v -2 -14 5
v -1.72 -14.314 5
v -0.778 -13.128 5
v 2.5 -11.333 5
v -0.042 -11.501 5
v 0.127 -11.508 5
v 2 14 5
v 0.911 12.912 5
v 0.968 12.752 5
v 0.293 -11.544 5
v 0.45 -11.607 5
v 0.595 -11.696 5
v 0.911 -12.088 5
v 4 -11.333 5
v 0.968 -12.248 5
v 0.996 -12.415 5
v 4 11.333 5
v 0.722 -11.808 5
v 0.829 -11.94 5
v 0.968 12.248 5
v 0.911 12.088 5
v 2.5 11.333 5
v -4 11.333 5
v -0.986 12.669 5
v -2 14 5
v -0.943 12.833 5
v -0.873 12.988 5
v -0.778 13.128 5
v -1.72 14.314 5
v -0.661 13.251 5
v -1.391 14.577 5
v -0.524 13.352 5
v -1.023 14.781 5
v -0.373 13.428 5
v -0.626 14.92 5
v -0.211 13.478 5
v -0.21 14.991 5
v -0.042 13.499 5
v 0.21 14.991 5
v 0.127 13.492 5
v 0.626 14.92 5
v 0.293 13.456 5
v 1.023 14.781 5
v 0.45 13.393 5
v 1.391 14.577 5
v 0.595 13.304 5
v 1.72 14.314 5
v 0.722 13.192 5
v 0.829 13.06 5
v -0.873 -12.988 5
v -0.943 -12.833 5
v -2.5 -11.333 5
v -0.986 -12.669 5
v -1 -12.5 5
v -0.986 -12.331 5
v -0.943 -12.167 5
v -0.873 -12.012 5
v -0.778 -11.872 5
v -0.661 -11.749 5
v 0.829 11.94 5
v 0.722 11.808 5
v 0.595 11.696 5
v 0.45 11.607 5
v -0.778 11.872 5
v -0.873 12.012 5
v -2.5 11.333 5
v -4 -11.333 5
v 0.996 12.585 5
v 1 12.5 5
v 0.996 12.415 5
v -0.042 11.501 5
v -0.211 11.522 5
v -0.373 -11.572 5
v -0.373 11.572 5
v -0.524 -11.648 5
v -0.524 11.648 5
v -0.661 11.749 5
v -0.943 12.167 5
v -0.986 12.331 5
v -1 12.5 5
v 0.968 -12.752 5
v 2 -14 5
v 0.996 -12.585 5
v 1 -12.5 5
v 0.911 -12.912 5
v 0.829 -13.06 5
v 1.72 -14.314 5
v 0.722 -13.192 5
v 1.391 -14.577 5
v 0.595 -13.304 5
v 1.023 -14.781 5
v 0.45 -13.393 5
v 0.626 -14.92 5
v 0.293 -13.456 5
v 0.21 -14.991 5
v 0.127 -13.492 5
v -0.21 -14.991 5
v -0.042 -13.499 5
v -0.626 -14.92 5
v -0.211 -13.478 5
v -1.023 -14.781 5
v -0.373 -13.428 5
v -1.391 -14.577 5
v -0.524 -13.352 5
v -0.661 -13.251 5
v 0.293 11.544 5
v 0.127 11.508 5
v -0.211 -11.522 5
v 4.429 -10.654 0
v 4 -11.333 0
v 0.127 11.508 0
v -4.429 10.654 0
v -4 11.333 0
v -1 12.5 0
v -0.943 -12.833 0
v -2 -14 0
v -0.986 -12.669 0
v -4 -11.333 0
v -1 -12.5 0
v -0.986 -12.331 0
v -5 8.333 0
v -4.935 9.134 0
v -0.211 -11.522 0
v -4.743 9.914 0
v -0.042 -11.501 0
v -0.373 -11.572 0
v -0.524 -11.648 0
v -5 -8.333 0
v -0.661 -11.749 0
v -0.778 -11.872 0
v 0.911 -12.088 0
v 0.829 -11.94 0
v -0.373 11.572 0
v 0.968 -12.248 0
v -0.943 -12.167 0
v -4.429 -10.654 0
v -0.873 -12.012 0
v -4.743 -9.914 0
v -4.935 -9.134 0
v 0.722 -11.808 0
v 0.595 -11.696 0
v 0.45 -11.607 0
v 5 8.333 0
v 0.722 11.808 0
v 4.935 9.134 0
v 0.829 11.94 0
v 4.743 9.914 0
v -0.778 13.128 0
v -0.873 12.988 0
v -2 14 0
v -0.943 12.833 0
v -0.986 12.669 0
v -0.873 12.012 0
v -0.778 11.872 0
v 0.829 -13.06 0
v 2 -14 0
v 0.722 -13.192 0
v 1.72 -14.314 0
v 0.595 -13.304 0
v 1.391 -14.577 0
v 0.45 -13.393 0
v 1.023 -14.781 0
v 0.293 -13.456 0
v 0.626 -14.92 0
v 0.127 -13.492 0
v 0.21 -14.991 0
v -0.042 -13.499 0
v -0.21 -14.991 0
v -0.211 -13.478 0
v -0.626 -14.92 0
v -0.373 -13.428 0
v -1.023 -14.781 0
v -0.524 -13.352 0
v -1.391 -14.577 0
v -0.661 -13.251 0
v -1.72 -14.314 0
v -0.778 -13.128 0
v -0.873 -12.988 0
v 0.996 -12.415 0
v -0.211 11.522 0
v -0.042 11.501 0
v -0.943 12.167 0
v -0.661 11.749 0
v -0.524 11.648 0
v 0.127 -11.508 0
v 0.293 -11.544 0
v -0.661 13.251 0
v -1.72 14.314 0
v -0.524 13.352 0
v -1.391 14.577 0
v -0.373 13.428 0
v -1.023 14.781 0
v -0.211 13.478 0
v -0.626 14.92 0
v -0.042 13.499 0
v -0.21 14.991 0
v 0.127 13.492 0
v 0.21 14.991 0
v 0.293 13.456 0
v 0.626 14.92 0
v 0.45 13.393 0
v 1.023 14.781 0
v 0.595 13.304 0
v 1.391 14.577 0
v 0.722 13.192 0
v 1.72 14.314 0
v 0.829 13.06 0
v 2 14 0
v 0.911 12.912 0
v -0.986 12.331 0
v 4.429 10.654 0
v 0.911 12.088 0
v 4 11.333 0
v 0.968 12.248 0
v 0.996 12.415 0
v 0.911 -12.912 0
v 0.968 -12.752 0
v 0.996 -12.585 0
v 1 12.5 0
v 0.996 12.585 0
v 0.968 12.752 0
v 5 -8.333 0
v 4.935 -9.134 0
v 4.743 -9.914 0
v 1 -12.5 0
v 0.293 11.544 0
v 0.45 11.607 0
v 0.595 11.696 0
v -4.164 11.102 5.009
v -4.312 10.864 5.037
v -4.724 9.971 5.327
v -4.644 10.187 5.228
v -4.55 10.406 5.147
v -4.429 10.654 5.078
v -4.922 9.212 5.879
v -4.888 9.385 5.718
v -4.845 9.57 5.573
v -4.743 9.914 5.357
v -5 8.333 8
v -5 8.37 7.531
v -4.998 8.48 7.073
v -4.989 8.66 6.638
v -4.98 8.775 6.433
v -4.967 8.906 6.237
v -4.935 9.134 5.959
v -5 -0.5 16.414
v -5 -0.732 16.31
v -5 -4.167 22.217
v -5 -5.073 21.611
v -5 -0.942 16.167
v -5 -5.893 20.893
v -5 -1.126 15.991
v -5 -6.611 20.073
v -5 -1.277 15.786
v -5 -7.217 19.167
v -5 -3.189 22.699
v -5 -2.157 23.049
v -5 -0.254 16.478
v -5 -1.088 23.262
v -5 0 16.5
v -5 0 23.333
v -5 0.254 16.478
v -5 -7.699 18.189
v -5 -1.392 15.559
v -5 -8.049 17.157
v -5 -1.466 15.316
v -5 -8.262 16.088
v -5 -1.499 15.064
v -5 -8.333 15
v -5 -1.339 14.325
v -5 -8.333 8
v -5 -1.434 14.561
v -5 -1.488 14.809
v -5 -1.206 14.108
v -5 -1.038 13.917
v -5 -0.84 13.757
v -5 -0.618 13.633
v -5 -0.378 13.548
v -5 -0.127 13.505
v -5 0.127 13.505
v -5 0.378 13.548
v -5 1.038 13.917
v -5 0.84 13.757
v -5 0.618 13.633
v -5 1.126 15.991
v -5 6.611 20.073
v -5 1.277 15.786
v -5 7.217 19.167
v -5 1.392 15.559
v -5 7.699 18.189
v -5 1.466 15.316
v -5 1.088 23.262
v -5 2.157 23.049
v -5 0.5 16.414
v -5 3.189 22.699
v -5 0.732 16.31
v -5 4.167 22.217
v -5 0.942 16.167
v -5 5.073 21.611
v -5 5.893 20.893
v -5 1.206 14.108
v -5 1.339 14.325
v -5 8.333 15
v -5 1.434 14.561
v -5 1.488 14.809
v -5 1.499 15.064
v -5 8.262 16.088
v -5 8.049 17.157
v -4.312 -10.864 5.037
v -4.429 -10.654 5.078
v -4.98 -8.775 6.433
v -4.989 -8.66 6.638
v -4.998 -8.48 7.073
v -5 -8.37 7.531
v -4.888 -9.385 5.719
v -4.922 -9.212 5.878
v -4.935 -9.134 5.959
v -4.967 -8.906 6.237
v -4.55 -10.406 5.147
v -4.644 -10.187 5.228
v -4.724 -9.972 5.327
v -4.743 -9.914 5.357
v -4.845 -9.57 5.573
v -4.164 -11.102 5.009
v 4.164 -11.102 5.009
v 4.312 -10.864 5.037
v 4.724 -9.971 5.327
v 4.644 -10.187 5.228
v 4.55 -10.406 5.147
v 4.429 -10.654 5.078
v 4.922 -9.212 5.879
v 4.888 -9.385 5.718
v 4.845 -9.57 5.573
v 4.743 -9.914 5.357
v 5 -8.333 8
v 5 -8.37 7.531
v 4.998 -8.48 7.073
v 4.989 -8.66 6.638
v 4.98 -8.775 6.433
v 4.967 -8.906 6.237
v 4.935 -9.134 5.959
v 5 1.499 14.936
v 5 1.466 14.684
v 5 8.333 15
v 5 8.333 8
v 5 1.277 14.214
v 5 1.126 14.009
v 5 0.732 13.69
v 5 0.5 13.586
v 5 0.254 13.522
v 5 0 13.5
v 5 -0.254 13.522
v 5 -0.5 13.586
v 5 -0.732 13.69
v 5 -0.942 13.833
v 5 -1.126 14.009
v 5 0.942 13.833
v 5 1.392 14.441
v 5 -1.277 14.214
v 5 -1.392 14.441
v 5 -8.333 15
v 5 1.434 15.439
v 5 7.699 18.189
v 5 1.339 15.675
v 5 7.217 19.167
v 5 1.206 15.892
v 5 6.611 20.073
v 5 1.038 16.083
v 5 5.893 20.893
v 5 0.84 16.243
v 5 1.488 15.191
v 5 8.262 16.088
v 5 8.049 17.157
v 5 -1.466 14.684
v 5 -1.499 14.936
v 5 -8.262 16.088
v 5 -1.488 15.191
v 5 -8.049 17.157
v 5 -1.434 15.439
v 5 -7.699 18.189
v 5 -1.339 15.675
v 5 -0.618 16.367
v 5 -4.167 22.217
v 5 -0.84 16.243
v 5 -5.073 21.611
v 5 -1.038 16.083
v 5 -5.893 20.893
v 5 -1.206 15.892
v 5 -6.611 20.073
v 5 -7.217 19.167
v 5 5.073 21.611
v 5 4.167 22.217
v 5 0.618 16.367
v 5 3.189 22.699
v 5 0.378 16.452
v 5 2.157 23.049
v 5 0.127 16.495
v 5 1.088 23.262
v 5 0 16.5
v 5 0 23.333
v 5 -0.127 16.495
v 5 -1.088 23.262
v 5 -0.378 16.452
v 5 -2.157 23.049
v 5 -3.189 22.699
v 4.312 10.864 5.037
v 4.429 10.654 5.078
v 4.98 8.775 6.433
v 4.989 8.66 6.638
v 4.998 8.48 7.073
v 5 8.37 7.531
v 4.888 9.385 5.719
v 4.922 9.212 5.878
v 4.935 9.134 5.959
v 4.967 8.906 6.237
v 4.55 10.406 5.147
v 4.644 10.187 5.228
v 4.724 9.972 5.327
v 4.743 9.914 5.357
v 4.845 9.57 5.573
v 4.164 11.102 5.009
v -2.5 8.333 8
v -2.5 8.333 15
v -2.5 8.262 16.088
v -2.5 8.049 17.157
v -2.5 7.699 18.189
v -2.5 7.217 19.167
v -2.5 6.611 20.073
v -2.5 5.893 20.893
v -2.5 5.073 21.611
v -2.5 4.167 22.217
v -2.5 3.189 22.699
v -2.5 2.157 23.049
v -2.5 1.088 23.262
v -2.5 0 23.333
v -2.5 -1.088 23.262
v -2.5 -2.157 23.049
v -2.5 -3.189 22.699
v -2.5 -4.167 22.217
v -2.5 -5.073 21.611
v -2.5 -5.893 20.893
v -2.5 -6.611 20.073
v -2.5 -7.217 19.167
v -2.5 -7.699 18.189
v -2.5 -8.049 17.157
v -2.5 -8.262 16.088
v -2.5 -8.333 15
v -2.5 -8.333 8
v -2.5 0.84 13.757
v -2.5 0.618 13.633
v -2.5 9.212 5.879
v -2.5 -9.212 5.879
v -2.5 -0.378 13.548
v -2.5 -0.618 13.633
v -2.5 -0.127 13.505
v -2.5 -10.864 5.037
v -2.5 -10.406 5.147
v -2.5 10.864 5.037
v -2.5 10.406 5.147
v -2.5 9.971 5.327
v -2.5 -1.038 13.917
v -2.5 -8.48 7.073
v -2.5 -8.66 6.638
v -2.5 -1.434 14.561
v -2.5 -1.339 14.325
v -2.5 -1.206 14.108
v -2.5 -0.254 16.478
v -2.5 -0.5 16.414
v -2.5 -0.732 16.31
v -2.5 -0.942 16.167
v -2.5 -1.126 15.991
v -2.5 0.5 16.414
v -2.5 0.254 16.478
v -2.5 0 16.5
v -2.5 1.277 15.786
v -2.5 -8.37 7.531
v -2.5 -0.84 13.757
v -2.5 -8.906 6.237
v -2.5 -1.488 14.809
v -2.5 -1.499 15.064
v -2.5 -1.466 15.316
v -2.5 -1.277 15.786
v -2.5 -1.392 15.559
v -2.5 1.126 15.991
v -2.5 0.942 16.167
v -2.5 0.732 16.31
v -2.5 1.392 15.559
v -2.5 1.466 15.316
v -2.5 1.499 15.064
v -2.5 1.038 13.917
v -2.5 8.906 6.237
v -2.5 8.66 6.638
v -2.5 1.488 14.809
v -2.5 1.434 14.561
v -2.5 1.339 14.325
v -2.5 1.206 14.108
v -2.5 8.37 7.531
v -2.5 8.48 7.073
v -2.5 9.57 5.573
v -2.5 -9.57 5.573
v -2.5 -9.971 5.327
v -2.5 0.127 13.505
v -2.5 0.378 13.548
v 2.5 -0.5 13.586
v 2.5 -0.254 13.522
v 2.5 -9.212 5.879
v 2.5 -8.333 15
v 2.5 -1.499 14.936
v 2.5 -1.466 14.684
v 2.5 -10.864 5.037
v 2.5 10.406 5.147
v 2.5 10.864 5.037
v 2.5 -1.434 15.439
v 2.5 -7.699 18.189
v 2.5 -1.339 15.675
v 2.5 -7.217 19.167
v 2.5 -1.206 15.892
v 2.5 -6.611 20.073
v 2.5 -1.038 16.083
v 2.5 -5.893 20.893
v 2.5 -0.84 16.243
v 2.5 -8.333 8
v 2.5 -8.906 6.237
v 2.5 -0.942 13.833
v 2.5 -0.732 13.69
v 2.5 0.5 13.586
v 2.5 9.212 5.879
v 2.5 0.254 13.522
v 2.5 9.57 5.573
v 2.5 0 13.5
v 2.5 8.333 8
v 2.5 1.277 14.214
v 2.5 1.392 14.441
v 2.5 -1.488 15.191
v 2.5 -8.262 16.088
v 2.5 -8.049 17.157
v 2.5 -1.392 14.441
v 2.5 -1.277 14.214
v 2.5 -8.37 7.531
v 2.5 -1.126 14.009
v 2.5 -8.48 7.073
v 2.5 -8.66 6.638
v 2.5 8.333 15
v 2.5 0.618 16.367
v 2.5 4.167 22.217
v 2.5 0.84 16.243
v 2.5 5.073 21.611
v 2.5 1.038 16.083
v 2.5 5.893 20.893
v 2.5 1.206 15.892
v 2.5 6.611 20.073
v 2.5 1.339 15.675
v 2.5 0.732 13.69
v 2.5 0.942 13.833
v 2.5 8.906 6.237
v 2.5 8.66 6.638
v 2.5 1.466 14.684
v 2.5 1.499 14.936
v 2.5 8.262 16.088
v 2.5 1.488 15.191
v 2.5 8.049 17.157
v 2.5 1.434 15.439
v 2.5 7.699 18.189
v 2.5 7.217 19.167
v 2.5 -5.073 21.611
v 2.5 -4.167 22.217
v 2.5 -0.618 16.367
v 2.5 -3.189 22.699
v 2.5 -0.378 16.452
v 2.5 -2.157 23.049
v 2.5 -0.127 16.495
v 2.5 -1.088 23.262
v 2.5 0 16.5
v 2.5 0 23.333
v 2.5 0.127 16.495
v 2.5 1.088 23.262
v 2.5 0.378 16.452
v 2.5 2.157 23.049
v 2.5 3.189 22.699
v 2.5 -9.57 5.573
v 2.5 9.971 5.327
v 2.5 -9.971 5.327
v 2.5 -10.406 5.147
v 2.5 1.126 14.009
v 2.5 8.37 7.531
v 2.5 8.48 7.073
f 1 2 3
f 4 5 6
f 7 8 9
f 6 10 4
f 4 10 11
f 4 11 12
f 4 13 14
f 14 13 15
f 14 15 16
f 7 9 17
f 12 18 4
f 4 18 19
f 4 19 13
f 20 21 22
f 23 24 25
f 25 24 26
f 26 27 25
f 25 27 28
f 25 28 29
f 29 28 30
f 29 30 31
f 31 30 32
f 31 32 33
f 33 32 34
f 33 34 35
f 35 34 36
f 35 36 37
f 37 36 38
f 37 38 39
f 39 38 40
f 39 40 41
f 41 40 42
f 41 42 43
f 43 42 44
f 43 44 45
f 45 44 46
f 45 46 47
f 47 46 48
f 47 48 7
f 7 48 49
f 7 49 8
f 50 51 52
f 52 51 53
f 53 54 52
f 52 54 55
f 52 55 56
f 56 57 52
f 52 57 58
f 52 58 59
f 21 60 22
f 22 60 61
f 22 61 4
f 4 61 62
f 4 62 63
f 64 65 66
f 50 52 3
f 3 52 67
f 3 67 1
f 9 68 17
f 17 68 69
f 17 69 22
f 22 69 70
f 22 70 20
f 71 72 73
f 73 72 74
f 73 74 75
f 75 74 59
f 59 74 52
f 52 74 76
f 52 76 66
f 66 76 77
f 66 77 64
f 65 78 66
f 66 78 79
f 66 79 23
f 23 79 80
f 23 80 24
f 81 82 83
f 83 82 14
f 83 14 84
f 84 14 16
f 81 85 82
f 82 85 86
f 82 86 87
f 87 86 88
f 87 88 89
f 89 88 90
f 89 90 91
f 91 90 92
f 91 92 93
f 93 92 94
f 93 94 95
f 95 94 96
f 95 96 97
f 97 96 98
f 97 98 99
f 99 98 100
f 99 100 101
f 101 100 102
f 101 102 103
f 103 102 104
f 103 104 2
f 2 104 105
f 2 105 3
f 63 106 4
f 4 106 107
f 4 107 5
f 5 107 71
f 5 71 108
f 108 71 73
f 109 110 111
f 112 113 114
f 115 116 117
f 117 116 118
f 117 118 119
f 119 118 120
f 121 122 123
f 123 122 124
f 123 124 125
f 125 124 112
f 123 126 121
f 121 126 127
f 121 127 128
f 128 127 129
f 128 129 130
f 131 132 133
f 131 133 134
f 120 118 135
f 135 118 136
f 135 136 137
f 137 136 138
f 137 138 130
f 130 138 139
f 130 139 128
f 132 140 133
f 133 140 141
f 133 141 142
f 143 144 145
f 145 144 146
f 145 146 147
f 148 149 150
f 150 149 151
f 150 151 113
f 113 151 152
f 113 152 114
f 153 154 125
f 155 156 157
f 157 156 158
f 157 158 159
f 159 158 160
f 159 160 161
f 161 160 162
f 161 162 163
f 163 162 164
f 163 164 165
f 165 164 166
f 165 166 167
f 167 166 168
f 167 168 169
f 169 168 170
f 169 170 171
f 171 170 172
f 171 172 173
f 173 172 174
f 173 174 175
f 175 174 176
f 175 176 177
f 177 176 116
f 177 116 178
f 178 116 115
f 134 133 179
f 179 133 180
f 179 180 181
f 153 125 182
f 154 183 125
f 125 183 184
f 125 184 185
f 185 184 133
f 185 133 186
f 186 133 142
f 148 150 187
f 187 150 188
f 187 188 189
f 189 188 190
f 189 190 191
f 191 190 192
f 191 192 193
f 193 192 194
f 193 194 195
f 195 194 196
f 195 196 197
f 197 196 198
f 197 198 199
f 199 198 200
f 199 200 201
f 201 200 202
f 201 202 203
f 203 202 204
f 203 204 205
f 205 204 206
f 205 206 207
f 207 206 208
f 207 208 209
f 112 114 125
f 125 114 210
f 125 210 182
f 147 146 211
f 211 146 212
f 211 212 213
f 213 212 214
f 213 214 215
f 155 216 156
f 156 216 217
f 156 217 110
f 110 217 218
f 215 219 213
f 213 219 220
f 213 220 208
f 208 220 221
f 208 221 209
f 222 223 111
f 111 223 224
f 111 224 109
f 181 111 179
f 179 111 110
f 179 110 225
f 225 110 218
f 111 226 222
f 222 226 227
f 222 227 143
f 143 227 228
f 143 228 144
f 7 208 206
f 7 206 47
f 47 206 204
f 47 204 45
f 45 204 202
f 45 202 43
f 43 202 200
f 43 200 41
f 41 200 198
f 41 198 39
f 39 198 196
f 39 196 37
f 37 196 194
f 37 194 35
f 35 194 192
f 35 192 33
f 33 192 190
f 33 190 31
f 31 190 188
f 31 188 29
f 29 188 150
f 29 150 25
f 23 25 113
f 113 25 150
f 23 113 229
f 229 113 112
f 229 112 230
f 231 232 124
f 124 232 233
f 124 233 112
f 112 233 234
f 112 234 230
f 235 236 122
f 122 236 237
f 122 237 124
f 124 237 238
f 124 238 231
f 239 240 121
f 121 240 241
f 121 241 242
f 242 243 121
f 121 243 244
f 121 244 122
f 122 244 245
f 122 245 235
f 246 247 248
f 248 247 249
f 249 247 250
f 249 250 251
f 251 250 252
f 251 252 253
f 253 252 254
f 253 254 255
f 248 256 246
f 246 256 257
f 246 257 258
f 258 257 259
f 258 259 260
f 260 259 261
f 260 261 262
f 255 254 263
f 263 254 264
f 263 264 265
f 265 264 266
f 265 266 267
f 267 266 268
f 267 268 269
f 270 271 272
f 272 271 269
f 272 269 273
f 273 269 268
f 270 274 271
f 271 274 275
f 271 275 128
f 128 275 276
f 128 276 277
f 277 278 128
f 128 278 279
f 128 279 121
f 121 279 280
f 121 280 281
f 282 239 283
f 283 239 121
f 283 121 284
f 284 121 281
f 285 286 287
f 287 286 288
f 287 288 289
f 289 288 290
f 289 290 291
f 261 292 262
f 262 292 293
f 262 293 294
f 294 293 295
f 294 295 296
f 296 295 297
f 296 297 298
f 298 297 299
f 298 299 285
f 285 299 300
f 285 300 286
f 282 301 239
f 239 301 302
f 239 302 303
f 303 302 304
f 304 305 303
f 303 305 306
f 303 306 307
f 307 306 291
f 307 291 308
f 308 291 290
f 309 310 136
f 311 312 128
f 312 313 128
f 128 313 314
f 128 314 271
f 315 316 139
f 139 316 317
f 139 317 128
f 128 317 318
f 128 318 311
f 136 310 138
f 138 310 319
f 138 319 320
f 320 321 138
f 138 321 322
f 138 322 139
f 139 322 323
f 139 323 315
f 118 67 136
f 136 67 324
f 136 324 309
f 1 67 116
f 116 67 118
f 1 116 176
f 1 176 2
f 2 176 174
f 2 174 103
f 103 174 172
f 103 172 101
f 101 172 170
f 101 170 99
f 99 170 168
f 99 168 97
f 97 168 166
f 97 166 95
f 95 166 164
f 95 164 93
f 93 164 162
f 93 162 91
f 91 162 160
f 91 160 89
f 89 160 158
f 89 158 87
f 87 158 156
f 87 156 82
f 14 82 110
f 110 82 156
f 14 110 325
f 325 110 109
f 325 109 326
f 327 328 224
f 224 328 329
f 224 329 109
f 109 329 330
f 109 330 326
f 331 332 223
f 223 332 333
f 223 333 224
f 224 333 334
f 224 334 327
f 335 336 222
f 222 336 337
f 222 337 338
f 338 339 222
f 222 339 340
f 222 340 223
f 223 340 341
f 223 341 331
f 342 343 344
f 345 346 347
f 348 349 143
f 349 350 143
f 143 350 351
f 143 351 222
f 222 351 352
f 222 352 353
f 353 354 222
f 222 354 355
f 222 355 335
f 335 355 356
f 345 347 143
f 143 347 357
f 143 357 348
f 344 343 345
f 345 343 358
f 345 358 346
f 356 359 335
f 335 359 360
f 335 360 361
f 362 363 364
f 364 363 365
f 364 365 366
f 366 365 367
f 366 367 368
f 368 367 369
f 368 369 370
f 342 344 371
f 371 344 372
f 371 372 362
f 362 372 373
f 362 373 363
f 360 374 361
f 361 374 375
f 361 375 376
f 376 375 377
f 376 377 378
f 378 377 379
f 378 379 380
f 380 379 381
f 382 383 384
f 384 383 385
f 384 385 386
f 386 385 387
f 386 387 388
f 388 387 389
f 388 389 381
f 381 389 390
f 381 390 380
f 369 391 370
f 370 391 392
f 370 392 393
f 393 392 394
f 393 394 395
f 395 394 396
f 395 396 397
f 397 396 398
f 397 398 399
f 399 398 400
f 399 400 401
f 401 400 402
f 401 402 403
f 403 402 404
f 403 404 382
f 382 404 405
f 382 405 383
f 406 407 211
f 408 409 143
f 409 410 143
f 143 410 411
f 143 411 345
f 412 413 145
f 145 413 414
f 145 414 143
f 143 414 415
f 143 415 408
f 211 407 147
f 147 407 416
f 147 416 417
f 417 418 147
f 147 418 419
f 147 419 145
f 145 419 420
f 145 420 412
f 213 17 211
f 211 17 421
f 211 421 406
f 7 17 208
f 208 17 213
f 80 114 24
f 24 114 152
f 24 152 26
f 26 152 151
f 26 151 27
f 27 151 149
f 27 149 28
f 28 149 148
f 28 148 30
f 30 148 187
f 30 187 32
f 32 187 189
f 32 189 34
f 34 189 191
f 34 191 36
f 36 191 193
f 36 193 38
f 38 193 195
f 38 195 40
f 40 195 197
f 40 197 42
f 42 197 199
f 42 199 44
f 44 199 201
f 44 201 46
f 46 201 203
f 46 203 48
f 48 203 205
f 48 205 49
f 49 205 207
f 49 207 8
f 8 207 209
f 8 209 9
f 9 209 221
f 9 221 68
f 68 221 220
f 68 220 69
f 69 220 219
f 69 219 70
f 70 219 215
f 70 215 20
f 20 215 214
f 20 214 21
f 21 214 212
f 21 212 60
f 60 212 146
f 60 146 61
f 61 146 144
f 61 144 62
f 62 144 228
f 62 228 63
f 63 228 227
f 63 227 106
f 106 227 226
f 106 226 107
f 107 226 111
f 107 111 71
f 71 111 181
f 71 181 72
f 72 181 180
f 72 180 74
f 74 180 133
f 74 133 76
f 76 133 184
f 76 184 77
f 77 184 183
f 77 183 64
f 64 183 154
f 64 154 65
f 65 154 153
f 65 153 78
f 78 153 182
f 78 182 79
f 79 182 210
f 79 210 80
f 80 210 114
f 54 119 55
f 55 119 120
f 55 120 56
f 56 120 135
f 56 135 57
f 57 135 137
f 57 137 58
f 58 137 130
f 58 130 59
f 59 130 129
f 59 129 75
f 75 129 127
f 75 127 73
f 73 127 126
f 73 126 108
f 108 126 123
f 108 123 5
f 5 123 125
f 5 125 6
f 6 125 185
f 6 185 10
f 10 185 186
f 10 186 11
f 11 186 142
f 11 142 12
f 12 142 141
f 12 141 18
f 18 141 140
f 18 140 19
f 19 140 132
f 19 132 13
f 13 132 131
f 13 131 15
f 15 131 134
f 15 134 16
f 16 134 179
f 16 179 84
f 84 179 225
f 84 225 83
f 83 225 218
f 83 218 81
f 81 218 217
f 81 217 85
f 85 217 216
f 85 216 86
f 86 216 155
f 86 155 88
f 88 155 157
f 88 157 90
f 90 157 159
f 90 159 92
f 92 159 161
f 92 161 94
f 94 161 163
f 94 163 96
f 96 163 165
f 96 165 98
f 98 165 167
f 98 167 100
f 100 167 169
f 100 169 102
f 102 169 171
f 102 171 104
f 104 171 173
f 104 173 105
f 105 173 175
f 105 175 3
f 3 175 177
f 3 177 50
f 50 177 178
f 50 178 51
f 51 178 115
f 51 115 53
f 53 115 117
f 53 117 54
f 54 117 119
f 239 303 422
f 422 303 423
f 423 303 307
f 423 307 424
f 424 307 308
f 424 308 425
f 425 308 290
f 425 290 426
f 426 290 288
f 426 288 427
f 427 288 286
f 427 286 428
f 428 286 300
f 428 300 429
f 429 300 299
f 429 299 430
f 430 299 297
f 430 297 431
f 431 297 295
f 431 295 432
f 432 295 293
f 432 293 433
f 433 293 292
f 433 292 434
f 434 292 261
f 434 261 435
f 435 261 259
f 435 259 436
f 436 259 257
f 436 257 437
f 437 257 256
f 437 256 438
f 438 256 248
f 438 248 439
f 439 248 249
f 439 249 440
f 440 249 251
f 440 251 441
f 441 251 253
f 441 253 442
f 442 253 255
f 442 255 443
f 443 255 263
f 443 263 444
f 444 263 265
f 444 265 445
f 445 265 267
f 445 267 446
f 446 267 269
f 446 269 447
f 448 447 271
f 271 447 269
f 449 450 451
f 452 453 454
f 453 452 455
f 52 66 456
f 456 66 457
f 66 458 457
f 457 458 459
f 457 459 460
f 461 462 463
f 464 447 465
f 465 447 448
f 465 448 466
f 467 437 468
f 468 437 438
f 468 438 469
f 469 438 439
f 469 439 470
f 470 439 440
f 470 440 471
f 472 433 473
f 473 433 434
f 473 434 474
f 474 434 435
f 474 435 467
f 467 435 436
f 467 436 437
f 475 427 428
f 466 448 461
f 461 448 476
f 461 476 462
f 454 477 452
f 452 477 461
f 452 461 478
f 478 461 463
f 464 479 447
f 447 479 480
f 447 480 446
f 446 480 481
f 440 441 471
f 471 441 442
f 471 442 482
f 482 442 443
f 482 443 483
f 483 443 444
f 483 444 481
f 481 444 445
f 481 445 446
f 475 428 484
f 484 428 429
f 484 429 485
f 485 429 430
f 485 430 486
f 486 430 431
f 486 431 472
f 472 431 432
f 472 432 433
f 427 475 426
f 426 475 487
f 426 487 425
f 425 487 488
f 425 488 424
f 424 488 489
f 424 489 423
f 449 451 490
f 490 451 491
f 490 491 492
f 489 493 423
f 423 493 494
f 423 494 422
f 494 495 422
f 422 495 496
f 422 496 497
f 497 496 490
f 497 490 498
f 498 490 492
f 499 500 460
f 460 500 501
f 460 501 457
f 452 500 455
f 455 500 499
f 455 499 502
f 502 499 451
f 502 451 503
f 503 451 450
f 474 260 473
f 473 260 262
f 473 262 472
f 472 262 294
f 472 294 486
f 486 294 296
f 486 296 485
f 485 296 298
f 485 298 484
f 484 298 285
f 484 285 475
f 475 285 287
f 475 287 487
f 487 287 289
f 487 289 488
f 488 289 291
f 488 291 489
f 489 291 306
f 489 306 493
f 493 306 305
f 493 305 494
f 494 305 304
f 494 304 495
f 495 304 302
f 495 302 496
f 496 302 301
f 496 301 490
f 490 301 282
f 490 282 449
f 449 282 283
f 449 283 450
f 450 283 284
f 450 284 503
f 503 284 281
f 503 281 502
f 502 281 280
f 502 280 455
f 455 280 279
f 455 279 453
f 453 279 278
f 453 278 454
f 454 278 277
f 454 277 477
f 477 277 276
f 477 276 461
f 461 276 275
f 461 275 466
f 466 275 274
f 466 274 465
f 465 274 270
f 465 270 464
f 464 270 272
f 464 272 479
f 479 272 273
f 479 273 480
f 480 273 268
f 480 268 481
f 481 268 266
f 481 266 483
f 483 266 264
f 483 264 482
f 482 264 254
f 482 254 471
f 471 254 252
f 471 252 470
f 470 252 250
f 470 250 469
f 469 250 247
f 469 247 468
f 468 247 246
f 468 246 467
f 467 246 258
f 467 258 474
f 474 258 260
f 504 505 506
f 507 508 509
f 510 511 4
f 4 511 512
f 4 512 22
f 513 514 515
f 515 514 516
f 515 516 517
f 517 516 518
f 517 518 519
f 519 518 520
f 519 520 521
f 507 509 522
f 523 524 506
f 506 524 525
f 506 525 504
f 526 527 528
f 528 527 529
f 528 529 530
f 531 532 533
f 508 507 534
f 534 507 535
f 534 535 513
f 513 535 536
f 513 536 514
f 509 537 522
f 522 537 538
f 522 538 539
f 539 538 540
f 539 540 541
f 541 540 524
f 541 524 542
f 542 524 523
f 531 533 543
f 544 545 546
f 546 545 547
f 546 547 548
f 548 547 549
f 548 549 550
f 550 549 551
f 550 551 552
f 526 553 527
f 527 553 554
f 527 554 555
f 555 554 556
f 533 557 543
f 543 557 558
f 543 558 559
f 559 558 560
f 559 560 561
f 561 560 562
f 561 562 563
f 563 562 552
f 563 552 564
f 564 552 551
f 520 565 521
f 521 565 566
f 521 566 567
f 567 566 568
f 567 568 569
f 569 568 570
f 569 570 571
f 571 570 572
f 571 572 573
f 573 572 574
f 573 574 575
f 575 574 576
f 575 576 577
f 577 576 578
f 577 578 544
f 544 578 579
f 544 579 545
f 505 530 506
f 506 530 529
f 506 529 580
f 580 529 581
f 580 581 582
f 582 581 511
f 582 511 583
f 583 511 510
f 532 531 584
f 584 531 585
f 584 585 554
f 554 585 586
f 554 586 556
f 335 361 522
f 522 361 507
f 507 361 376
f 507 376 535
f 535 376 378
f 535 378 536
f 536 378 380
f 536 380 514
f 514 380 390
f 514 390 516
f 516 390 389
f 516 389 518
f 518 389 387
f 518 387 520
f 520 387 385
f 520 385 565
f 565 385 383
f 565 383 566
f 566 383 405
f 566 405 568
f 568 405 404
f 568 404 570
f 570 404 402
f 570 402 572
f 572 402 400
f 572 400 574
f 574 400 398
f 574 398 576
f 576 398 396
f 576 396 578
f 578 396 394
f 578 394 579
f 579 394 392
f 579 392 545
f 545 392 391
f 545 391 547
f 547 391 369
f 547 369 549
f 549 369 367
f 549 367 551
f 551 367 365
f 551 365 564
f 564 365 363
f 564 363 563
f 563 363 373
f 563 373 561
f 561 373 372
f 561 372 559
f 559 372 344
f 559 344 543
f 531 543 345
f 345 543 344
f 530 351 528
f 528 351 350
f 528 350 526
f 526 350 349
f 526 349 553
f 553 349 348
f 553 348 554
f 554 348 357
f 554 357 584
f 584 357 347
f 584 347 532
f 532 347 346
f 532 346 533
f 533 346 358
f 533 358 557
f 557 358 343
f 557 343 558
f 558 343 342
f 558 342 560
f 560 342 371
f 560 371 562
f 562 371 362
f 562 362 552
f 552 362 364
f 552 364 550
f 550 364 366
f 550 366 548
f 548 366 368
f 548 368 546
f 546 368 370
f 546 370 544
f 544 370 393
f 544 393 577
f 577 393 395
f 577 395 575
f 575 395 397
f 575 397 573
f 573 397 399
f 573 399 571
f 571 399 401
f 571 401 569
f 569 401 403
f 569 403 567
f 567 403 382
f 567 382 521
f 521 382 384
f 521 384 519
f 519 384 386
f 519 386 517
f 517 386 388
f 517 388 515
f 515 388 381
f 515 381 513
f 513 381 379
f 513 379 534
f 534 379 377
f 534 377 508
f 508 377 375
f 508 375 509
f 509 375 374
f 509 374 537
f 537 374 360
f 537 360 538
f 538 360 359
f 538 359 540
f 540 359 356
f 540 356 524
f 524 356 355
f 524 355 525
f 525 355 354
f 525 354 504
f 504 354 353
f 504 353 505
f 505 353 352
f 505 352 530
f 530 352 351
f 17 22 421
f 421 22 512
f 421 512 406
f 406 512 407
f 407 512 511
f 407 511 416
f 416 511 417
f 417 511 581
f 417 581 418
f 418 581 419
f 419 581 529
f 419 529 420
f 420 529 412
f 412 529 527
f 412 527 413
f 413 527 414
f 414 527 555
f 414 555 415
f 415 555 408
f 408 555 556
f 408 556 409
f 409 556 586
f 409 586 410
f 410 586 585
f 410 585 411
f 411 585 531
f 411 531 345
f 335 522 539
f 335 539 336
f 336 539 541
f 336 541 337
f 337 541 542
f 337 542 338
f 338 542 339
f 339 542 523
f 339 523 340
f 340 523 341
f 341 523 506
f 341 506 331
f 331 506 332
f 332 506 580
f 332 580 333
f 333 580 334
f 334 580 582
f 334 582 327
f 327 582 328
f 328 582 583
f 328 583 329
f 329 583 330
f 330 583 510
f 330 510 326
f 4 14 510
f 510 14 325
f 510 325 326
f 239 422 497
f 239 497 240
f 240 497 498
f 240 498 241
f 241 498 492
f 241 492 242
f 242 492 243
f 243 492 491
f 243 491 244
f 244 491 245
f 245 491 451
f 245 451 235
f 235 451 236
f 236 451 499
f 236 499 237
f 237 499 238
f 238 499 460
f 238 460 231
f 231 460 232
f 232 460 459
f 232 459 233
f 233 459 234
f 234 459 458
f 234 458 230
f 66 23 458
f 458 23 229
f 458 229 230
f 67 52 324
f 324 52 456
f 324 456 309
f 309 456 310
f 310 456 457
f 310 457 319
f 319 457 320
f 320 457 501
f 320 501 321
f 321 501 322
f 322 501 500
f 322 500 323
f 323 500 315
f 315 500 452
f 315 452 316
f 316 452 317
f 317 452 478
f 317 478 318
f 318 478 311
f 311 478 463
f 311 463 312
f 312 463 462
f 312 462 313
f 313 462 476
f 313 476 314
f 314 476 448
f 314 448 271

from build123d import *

# Parameters (mm, degrees)
ESQUISSE1_R        = 1
BOSS_EXTRU_1_DEPTH = 5
ESQUISSE2_R        = 1.5
BOSS_EXTRU_2_DEPTH = 2.5
CONG_1_R           = 3


with BuildPart() as part:
    # Esquisse1 → Boss.-Extru.1 (new body)
    with BuildSketch(Plane.XY):
        with BuildLine():
            Line((-4, 11.333333333), (-2, 14))
            ThreePointArc((-2, 14), (0, 15), (2, 14))
            Line((2, 14), (4, 11.333333333))
            ThreePointArc((4, 11.333333333), (4.74341649, 9.914472163), (5, 8.333333333))
            Line((5, 8.333333333), (5, -8.333333333))
            ThreePointArc((5, -8.333333333), (4.74341649, -9.914472163), (4, -11.333333333))
            Line((4, -11.333333333), (2, -14))
            ThreePointArc((2, -14), (0, -15), (-2, -14))
            Line((-2, -14), (-4, -11.333333333))
            ThreePointArc((-4, -11.333333333), (-4.74341649, -9.914472163), (-5, -8.333333333))
            Line((-5, -8.333333333), (-5, 8.333333333))
            ThreePointArc((-5, 8.333333333), (-4.74341649, 9.914472163), (-4, 11.333333333))
        make_face()
        with Locations((0, 12.5)):
            Circle(ESQUISSE1_R, mode=Mode.SUBTRACT)
        with Locations((0, -12.5)):
            Circle(ESQUISSE1_R, mode=Mode.SUBTRACT)
    extrude(amount=BOSS_EXTRU_1_DEPTH)

    # Esquisse2 → Boss.-Extru.2 (add)
    with BuildSketch(Plane.ZY.offset(5)):
        with BuildLine():
            Line((5, 8.333333333), (15, 8.333333333))
            ThreePointArc((15, 8.333333333), (23.333333333, 0), (15, -8.333333333))
            Line((15, -8.333333333), (5, -8.333333333))
            Line((5, -8.333333333), (5, 8.333333333))
        make_face()
        with Locations((15, 0)):
            Circle(ESQUISSE2_R, mode=Mode.SUBTRACT)
    boss_extru_2 = extrude(amount=-BOSS_EXTRU_2_DEPTH)

    # Symétrie1: Boss.-Extru.2 across plane
    add(boss_extru_2.mirror(Plane(origin=(0, 0, 0), x_dir=(0, 0, 1), z_dir=(1, 0, 0))))

    # Congé1
    # the kernel refuses this fillet: 3 mm, written as the material it adds along each edge
    with BuildSketch(Plane(origin=(12.5, 8.333333333, 5), x_dir=(0, 1, 0), z_dir=(-1, 0, 0))) as cong_1_piece_1_section:
        with BuildLine():
            CenterArc((CONG_1_R, -CONG_1_R), CONG_1_R, 90, 90)
            Line((0, -CONG_1_R), (0, 0))
            Line((0, 0), (CONG_1_R, 0))
        make_face()
    cong_1_piece_1 = extrude(amount=10, mode=Mode.PRIVATE)
    cong_1_piece_1 = cong_1_piece_1 & Plane(origin=(0, 8.333333333, 5.683499062), x_dir=(-1, 0, 0), z_dir=(0, 0, -1)) * Cylinder(5, 32, mode=Mode.PRIVATE)
    add(cong_1_piece_1)
    with BuildSketch(Plane(origin=(12.5, 8.333333333, 5), x_dir=(0, 1, 0), z_dir=(-1, 0, 0))) as cong_1_piece_2_section:
        with BuildLine():
            CenterArc((CONG_1_R, -CONG_1_R), CONG_1_R, 90, 90)
            Line((0, -CONG_1_R), (0, 0))
            Line((0, 0), (CONG_1_R, 0))
        make_face()
    cong_1_piece_2 = extrude(amount=17.5, mode=Mode.PRIVATE)
    cong_1_piece_2 = cong_1_piece_2 & Plane(origin=(0, 8.333333333, 5.683498856), x_dir=(-1, 0, 0), z_dir=(0, 0, -1)) * Cylinder(5, 47, mode=Mode.PRIVATE)
    cong_1_piece_2 = split(cong_1_piece_2, bisect_by=Plane(origin=(-2.5, 8.977430515, 5.683498856), z_dir=(-1, 0, 0)), keep=Keep.TOP, mode=Mode.PRIVATE)
    add(cong_1_piece_2)
    with BuildSketch(Plane(origin=(12.5, -8.333333333, 5), x_dir=(0, -1, 0), z_dir=(-1, 0, 0))) as cong_1_piece_3_section:
        with BuildLine():
            CenterArc((CONG_1_R, CONG_1_R), CONG_1_R, 180, 90)
            Line((0, CONG_1_R), (0, 0))
            Line((0, 0), (CONG_1_R, 0))
        make_face()
    cong_1_piece_3 = extrude(amount=10, mode=Mode.PRIVATE)
    cong_1_piece_3 = cong_1_piece_3 & Plane(origin=(0, -8.333333333, 5.683498856), x_dir=(-0.8000000000000032, -0.5999999999999958, 0), z_dir=(0, 0, -1)) * Cylinder(5, 32, mode=Mode.PRIVATE)
    add(cong_1_piece_3)
    with BuildSketch(Plane(origin=(12.5, -8.333333333, 5), x_dir=(0, -1, 0), z_dir=(-1, 0, 0))) as cong_1_piece_4_section:
        with BuildLine():
            CenterArc((CONG_1_R, CONG_1_R), CONG_1_R, 180, 90)
            Line((0, CONG_1_R), (0, 0))
            Line((0, 0), (CONG_1_R, 0))
        make_face()
    cong_1_piece_4 = extrude(amount=17.5, mode=Mode.PRIVATE)
    cong_1_piece_4 = cong_1_piece_4 & Plane(origin=(0, -8.333333333, 5.683499062), x_dir=(-0.8000000000000032, -0.5999999999999958, 0), z_dir=(0, 0, -1)) * Cylinder(5, 47, mode=Mode.PRIVATE)
    cong_1_piece_4 = split(cong_1_piece_4, bisect_by=Plane(origin=(-2.5, -8.97743132, 5.683499062), z_dir=(-1, 0, 0)), keep=Keep.TOP, mode=Mode.PRIVATE)
    add(cong_1_piece_4)
    with BuildSketch(Plane(origin=(-12.5, 8.333333333, 5), x_dir=(0, 1, 0), z_dir=(1, 0, 0))) as cong_1_piece_5_section:
        with BuildLine():
            CenterArc((CONG_1_R, CONG_1_R), CONG_1_R, 180, 90)
            Line((0, CONG_1_R), (0, 0))
            Line((0, 0), (CONG_1_R, 0))
        make_face()
    cong_1_piece_5 = extrude(amount=10, mode=Mode.PRIVATE)
    cong_1_piece_5 = cong_1_piece_5 & Plane(origin=(0, 8.333333333, 5.683498856), x_dir=(-1, 0, 0), z_dir=(0, 0, -1)) * Cylinder(5, 32, mode=Mode.PRIVATE)
    add(cong_1_piece_5)
    with BuildSketch(Plane(origin=(-12.5, 8.333333333, 5), x_dir=(0, 1, 0), z_dir=(1, 0, 0))) as cong_1_piece_6_section:
        with BuildLine():
            CenterArc((CONG_1_R, CONG_1_R), CONG_1_R, 180, 90)
            Line((0, CONG_1_R), (0, 0))
            Line((0, 0), (CONG_1_R, 0))
        make_face()
    cong_1_piece_6 = extrude(amount=17.5, mode=Mode.PRIVATE)
    cong_1_piece_6 = cong_1_piece_6 & Plane(origin=(0, 8.333333333, 5.683499062), x_dir=(-1, 0, 0), z_dir=(0, 0, -1)) * Cylinder(5, 47, mode=Mode.PRIVATE)
    cong_1_piece_6 = split(cong_1_piece_6, bisect_by=Plane(origin=(2.5, 8.97743132, 5.683499062), z_dir=(1, 0, 0)), keep=Keep.TOP, mode=Mode.PRIVATE)
    add(cong_1_piece_6)
    with BuildSketch(Plane(origin=(-12.5, -8.333333333, 5), x_dir=(0, -1, 0), z_dir=(1, 0, 0))) as cong_1_piece_7_section:
        with BuildLine():
            CenterArc((CONG_1_R, -CONG_1_R), CONG_1_R, 90, 90)
            Line((0, -CONG_1_R), (0, 0))
            Line((0, 0), (CONG_1_R, 0))
        make_face()
    cong_1_piece_7 = extrude(amount=10, mode=Mode.PRIVATE)
    cong_1_piece_7 = cong_1_piece_7 & Plane(origin=(0, -8.333333333, 5.683499062), x_dir=(-0.8000000000000032, -0.5999999999999958, 0), z_dir=(0, 0, -1)) * Cylinder(5, 32, mode=Mode.PRIVATE)
    add(cong_1_piece_7)
    with BuildSketch(Plane(origin=(-12.5, -8.333333333, 5), x_dir=(0, -1, 0), z_dir=(1, 0, 0))) as cong_1_piece_8_section:
        with BuildLine():
            CenterArc((CONG_1_R, -CONG_1_R), CONG_1_R, 90, 90)
            Line((0, -CONG_1_R), (0, 0))
            Line((0, 0), (CONG_1_R, 0))
        make_face()
    cong_1_piece_8 = extrude(amount=17.5, mode=Mode.PRIVATE)
    cong_1_piece_8 = cong_1_piece_8 & Plane(origin=(0, -8.333333333, 5.683498856), x_dir=(-0.8000000000000032, -0.5999999999999958, 0), z_dir=(0, 0, -1)) * Cylinder(5, 47, mode=Mode.PRIVATE)
    cong_1_piece_8 = split(cong_1_piece_8, bisect_by=Plane(origin=(2.5, -8.977430515, 5.683498856), z_dir=(1, 0, 0)), keep=Keep.TOP, mode=Mode.PRIVATE)
    add(cong_1_piece_8)


solid = part.part
